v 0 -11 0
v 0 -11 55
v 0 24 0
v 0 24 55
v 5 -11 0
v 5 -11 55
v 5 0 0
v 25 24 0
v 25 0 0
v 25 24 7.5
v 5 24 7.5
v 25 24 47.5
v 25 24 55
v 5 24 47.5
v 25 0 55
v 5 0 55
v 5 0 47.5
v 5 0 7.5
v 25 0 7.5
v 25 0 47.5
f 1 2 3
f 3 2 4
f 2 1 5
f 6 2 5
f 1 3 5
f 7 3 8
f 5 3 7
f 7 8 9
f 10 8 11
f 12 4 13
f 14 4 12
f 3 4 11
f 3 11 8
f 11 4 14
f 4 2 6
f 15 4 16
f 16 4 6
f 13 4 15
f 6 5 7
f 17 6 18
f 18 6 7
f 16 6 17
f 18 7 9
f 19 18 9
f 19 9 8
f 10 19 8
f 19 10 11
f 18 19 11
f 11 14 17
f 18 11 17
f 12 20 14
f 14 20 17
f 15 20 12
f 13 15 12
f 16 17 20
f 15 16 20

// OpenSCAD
difference() {
	cube([25, 24, 55]);
	translate([5,0,7.5]) cube([20,24,40]);
}
translate([0,-11,0]) cube([5, 11, 55]);
